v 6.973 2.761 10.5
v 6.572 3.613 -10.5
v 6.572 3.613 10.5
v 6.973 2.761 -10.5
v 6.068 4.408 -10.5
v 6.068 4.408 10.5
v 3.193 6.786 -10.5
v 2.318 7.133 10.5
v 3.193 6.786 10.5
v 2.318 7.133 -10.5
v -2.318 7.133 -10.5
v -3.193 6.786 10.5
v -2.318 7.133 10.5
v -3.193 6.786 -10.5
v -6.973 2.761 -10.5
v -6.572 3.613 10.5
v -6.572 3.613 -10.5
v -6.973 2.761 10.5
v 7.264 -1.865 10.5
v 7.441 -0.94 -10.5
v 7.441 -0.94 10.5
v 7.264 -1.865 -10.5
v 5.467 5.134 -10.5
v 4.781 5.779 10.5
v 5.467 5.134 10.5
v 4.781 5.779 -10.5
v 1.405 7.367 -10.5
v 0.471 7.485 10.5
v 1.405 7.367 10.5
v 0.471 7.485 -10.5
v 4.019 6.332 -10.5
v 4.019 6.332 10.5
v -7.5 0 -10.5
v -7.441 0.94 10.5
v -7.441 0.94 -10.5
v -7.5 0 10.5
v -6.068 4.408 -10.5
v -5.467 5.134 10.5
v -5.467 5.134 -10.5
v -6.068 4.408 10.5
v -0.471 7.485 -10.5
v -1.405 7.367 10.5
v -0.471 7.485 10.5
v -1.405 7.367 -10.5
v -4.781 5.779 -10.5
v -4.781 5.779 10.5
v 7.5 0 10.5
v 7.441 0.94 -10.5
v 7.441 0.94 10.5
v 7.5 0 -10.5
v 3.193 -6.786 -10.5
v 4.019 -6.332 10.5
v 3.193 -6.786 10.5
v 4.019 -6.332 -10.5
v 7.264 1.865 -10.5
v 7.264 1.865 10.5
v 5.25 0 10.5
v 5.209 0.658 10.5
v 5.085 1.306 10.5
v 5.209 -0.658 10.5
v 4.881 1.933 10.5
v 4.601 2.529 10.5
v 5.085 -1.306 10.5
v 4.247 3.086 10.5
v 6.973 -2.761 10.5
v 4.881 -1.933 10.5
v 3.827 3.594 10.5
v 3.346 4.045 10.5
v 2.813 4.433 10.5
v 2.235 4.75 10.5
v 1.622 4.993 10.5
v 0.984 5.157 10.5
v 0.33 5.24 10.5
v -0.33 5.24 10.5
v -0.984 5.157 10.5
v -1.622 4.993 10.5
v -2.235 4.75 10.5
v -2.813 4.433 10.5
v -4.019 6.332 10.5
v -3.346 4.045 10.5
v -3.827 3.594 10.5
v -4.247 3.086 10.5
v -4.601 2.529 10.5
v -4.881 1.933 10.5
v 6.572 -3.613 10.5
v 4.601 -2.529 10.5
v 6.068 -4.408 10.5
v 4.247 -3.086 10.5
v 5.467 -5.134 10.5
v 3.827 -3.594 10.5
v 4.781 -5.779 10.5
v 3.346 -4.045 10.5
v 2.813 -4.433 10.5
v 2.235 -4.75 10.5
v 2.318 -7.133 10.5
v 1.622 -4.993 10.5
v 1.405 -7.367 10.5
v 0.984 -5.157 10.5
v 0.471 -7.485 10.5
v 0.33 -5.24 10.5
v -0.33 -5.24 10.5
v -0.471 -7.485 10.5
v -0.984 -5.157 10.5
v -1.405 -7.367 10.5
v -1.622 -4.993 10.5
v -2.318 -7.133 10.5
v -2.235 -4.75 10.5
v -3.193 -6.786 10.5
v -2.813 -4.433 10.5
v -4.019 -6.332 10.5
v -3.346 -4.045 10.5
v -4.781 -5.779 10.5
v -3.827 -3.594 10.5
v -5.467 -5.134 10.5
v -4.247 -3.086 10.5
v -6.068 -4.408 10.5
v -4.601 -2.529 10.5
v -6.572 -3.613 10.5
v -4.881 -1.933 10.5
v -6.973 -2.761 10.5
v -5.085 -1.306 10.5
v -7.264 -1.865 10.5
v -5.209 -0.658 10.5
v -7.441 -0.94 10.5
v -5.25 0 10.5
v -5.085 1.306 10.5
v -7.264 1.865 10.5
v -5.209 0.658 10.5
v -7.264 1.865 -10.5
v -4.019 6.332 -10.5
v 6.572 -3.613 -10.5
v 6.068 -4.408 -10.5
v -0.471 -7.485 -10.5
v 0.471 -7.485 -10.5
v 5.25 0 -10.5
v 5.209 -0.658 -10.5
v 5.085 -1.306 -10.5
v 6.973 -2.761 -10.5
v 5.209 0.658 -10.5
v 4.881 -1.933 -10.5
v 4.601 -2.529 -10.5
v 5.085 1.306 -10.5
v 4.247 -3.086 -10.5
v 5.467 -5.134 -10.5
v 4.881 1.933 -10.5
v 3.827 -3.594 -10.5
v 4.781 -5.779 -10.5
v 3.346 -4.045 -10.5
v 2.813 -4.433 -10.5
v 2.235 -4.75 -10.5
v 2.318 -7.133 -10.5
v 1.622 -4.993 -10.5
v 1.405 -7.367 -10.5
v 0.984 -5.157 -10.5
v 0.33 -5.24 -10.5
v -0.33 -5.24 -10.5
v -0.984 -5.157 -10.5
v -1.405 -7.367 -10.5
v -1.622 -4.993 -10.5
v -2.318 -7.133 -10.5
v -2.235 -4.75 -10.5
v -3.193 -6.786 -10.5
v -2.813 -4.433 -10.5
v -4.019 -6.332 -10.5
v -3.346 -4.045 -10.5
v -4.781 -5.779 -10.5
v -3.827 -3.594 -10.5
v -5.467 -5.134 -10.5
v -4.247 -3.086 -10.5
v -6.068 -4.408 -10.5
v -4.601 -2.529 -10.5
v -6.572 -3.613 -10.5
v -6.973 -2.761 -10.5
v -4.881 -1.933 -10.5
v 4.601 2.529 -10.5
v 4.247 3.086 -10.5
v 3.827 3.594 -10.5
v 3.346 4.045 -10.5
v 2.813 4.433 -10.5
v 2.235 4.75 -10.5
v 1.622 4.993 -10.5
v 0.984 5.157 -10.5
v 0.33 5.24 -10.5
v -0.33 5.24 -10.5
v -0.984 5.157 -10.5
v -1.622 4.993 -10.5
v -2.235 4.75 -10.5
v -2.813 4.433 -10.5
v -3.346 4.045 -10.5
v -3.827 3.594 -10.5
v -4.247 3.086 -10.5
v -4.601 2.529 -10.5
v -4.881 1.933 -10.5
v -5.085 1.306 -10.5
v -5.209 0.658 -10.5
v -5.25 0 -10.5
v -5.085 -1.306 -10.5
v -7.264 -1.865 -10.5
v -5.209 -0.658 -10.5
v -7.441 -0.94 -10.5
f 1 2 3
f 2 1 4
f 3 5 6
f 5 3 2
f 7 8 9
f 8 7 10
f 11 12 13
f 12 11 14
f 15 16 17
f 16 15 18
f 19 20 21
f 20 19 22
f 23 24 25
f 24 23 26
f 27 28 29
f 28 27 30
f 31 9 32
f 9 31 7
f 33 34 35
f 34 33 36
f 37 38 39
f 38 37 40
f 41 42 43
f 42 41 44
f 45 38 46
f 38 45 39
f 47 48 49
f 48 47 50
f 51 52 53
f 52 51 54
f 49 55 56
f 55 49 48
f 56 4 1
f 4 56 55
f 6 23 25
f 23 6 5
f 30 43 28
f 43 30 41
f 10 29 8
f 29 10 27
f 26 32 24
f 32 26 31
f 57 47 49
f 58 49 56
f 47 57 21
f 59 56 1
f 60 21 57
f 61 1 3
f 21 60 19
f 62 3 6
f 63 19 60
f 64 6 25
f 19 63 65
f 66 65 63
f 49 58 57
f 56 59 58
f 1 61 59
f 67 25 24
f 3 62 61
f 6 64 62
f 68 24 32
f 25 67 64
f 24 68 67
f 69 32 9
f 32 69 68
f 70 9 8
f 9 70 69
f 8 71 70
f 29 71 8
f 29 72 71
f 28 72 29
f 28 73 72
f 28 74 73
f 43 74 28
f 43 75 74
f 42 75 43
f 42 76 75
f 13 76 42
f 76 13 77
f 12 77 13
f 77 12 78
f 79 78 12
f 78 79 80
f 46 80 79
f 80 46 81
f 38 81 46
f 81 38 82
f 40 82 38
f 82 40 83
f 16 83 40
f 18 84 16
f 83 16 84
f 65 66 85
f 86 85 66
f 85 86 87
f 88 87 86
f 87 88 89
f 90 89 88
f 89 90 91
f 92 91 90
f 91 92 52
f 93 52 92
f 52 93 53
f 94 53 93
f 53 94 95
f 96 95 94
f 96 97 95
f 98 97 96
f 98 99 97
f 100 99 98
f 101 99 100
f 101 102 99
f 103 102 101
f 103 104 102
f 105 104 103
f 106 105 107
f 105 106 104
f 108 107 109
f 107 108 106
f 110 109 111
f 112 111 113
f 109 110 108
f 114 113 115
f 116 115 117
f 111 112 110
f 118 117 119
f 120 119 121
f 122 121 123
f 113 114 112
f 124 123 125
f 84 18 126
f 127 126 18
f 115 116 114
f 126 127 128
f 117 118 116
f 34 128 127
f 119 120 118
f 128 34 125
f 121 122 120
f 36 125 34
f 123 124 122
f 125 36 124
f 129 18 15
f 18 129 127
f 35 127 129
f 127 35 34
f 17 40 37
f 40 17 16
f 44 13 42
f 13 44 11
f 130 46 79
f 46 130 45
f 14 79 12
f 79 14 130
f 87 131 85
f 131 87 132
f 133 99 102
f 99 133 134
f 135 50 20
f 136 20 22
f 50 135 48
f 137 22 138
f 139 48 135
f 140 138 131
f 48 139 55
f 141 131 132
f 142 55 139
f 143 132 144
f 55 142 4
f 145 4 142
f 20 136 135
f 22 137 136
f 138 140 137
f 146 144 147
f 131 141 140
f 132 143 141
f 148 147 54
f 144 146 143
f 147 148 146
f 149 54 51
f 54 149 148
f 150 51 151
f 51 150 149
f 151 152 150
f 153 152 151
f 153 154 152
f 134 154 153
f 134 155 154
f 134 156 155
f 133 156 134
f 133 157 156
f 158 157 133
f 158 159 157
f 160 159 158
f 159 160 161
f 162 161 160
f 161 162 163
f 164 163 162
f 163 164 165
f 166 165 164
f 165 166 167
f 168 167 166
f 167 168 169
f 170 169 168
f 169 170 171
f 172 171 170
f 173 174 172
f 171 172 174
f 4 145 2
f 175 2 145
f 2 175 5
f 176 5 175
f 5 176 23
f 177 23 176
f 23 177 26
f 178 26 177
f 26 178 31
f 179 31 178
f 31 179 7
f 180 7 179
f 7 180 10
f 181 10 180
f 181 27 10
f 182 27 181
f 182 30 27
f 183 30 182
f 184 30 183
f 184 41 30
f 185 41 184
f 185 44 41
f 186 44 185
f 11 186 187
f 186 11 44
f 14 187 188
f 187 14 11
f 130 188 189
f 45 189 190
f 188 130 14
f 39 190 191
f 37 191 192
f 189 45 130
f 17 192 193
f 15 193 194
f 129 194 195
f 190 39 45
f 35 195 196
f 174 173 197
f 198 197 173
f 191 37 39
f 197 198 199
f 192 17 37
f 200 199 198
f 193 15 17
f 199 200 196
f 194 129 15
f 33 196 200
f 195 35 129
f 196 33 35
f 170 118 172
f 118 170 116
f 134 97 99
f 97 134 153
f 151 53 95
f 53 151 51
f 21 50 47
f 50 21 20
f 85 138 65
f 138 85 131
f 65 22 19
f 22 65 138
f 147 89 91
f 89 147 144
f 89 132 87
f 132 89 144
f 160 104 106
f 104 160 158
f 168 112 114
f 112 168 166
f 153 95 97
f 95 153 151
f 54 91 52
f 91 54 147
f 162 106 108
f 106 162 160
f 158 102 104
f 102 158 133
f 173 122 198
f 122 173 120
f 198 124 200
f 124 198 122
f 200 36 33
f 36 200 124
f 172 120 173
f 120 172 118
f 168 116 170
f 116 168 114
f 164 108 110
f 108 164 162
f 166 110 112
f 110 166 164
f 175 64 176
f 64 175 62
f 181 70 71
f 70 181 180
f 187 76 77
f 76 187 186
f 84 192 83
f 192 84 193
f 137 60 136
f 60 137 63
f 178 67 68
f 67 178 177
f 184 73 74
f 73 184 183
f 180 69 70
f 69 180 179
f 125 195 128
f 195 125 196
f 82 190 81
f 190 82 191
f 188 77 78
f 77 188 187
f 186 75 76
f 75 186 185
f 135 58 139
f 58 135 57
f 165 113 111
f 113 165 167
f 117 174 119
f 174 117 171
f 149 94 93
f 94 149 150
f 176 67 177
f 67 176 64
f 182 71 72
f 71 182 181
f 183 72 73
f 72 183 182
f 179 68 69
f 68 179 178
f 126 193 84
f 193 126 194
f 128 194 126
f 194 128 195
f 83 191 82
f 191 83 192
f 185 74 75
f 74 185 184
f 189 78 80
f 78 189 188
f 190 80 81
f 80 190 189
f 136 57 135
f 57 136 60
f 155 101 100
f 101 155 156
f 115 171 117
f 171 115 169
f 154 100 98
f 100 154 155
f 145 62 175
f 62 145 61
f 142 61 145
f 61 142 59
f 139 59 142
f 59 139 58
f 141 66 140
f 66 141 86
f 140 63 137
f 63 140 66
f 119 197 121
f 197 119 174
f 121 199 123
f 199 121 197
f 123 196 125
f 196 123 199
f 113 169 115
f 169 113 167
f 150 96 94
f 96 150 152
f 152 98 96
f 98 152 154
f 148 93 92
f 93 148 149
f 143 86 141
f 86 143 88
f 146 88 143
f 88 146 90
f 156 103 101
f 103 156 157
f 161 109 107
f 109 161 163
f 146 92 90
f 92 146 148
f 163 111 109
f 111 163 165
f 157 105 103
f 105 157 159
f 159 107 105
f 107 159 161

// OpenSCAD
$fn = 50;


difference() {
	union() {
		translate(v = [0, 0, -10.5000000000]) {
			cylinder(h = 21, r = 7.5000000000);
		}
	}
	union() {
		translate(v = [0, 0, -100.0000000000]) {
			cylinder(h = 200, r = 5.2500000000);
		}
	}
}
